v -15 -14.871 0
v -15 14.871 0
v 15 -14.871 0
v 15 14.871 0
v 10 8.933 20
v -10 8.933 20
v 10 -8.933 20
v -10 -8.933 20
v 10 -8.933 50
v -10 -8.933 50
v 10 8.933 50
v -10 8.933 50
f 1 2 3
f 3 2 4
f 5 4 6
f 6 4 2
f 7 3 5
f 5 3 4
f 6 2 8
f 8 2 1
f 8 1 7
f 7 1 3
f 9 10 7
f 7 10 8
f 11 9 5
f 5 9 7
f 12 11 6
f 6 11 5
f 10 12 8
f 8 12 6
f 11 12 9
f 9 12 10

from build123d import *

# Parameters (mm, degrees)
SKETCH3_W           = 20
SKETCH3_H           = 17.866253804
BOSS_EXTRUDE1_DEPTH = 30


with BuildPart() as part:
    # Sketch1 → Loft1 section 0
    with BuildSketch(Plane.XY):
        with BuildLine():
            Line((-15, 14.870689655), (15, 14.870689655))
            Line((15, 14.870689655), (15, -14.870689655))
            Line((15, -14.870689655), (-15, -14.870689655))
            Line((-15, -14.870689655), (-15, 14.870689655))
        make_face()
    # Sketch2 → Loft1 section 1
    with BuildSketch(Plane.XY.offset(20)):
        with BuildLine():
            Line((-10, 8.933126902), (10, 8.933126902))
            Line((10, 8.933126902), (10, -8.933126902))
            Line((10, -8.933126902), (-10, -8.933126902))
            Line((-10, -8.933126902), (-10, 8.933126902))
        make_face()
    loft()

    # Sketch3 → Boss-Extrude1 (add)
    with BuildSketch(Plane.XY.offset(20)):
        Rectangle(SKETCH3_W, SKETCH3_H)
    extrude(amount=BOSS_EXTRUDE1_DEPTH)


solid = part.part
